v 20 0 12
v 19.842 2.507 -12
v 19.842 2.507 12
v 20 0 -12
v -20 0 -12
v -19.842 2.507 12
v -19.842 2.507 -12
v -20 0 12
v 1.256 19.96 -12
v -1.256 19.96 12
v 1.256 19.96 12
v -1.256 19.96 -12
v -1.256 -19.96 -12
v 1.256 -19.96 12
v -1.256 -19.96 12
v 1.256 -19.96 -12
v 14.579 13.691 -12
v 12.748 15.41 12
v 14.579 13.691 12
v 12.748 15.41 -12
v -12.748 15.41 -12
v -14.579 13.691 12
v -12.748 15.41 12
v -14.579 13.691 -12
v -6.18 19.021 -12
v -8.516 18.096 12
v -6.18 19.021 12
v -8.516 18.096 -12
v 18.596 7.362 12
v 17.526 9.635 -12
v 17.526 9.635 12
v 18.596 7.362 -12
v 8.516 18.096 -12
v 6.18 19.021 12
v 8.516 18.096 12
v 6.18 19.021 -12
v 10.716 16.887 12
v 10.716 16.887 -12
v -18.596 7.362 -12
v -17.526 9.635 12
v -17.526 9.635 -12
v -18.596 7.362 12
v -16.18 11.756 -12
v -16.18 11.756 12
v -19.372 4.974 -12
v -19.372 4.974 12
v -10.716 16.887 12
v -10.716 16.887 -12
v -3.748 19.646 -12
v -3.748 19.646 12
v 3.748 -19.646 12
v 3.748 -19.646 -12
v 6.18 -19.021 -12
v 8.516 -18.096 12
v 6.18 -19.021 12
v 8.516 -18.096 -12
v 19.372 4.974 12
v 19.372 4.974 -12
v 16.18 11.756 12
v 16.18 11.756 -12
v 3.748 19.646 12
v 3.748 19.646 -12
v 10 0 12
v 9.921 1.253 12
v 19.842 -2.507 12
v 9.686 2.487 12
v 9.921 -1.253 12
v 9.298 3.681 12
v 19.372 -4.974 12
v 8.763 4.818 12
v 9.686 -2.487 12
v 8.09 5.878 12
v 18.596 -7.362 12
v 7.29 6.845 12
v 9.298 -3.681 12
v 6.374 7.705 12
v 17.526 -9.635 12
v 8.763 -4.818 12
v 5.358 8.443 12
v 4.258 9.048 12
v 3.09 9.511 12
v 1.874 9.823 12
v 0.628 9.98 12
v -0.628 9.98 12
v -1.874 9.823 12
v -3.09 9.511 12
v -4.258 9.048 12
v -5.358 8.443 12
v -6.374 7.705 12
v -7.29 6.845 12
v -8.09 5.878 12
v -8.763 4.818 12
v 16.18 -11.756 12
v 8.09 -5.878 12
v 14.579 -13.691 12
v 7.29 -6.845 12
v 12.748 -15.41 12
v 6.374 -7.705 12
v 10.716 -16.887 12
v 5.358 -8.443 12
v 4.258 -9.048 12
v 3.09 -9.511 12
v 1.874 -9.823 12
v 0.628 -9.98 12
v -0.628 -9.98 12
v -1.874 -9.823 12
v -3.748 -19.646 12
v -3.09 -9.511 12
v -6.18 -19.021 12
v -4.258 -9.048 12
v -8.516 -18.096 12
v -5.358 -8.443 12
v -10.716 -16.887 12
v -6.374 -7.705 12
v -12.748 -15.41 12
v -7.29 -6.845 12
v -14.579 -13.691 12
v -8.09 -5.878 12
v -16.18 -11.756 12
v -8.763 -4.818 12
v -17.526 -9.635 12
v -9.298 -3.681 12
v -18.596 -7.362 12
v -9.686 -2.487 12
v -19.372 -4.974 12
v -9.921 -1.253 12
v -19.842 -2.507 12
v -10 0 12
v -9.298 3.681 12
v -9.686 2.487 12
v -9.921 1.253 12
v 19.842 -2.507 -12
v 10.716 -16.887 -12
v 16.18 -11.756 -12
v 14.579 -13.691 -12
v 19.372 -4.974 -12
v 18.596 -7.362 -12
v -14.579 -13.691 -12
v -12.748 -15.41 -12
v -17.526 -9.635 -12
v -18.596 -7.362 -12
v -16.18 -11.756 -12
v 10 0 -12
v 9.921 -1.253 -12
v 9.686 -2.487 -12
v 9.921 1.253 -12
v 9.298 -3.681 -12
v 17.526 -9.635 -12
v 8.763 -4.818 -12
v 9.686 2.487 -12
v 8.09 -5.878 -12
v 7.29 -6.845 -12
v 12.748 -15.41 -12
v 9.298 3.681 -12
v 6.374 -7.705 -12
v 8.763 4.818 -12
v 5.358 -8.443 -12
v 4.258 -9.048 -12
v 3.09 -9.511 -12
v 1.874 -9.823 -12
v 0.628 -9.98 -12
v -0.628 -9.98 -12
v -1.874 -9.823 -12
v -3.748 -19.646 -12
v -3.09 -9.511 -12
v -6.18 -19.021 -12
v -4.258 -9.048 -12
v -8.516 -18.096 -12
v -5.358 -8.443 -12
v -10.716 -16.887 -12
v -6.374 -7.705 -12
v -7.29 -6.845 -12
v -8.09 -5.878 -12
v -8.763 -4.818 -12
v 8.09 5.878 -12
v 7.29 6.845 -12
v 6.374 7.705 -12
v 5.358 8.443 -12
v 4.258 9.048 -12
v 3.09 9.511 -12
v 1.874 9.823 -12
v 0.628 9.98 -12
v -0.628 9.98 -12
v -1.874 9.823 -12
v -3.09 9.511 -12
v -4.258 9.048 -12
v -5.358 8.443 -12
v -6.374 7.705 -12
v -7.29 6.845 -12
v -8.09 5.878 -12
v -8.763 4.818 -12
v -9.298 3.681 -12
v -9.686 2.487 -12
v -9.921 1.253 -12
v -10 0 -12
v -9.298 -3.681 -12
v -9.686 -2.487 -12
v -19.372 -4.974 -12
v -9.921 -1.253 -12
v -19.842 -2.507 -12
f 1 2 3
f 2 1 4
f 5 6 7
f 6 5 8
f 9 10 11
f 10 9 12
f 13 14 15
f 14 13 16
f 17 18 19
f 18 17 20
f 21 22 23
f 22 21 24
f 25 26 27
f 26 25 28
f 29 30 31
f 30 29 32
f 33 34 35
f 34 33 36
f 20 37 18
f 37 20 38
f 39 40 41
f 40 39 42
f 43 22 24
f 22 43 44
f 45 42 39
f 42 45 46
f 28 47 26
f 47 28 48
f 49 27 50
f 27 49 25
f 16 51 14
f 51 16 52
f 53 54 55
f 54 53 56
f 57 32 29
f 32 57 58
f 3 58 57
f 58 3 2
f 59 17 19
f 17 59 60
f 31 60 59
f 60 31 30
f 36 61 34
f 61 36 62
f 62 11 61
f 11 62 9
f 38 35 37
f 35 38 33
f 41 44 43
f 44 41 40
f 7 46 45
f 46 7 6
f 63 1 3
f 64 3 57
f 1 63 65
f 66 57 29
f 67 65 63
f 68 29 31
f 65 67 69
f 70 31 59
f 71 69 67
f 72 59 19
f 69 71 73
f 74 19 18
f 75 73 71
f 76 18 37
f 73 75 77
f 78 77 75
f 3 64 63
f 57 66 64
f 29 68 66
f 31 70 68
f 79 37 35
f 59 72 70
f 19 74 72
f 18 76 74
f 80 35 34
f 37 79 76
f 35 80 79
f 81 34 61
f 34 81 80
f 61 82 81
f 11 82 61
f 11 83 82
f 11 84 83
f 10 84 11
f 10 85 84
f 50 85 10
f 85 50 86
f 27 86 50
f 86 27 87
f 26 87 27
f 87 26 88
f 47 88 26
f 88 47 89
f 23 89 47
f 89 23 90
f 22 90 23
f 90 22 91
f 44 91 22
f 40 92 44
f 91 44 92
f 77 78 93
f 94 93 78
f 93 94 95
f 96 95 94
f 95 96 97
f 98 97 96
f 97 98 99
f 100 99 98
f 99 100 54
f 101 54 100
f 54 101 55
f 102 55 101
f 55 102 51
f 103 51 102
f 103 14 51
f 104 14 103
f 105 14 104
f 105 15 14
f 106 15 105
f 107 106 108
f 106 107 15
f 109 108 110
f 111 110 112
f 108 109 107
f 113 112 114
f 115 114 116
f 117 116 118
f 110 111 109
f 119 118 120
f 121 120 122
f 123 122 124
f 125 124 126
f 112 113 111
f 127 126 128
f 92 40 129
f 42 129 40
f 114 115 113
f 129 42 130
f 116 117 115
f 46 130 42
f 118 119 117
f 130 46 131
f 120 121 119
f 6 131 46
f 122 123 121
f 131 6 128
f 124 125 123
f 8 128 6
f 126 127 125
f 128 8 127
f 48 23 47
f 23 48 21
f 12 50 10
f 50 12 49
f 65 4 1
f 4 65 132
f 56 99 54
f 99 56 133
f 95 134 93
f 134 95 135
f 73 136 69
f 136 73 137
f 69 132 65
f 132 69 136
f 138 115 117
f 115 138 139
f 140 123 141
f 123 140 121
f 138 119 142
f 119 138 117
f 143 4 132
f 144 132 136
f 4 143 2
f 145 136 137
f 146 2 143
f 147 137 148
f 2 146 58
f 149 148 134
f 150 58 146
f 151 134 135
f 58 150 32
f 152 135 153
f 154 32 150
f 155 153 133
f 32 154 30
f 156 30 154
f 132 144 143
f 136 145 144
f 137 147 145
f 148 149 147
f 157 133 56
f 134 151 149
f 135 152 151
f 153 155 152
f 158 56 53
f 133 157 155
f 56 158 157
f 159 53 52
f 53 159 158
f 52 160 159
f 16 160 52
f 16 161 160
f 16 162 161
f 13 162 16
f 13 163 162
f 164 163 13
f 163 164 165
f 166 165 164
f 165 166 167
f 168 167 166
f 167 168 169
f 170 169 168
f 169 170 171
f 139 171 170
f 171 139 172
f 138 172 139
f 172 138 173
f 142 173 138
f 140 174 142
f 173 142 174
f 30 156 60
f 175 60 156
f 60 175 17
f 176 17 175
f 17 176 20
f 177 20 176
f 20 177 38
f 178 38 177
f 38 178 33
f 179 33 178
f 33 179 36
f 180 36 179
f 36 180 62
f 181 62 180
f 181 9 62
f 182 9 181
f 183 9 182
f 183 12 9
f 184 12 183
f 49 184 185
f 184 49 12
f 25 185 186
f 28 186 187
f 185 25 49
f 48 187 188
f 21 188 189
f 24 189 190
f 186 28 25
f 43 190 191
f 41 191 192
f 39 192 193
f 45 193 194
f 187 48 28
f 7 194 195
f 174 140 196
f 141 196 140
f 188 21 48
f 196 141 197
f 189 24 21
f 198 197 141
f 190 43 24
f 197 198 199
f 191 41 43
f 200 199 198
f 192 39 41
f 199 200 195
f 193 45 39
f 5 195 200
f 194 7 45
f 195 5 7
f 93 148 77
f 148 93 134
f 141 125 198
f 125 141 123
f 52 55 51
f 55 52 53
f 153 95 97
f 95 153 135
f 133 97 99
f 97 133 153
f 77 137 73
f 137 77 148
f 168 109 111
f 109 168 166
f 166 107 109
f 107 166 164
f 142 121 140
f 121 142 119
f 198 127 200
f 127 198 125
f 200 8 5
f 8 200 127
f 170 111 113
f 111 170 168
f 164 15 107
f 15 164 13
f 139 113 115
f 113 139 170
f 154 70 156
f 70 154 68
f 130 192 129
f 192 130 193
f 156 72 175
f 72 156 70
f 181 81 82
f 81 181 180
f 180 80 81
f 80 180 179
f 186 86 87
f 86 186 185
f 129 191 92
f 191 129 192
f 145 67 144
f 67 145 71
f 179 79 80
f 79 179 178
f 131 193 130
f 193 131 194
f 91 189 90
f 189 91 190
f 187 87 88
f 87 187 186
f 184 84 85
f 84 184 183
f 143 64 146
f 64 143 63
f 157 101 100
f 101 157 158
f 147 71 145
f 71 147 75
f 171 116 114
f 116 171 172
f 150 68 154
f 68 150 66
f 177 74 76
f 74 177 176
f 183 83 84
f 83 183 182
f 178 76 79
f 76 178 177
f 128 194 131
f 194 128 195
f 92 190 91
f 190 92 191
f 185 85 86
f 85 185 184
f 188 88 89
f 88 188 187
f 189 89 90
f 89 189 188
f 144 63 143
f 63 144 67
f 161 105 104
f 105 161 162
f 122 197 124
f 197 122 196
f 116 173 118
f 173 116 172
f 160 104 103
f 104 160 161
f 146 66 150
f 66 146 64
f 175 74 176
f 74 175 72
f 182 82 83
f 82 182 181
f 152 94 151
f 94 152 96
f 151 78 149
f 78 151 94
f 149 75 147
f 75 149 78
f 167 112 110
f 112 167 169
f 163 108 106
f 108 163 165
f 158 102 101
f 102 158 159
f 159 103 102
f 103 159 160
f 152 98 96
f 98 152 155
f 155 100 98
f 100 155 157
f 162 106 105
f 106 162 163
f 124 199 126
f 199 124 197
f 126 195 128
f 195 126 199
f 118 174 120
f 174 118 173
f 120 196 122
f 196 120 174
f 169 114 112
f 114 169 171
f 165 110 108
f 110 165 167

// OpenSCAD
$fn = 50;


difference() {
	union() {
		translate(v = [0, 0, -12.0000000000]) {
			cylinder(h = 24, r = 20.0000000000);
		}
	}
	union() {
		translate(v = [0, 0, -100.0000000000]) {
			cylinder(h = 200, r = 10);
		}
	}
}
